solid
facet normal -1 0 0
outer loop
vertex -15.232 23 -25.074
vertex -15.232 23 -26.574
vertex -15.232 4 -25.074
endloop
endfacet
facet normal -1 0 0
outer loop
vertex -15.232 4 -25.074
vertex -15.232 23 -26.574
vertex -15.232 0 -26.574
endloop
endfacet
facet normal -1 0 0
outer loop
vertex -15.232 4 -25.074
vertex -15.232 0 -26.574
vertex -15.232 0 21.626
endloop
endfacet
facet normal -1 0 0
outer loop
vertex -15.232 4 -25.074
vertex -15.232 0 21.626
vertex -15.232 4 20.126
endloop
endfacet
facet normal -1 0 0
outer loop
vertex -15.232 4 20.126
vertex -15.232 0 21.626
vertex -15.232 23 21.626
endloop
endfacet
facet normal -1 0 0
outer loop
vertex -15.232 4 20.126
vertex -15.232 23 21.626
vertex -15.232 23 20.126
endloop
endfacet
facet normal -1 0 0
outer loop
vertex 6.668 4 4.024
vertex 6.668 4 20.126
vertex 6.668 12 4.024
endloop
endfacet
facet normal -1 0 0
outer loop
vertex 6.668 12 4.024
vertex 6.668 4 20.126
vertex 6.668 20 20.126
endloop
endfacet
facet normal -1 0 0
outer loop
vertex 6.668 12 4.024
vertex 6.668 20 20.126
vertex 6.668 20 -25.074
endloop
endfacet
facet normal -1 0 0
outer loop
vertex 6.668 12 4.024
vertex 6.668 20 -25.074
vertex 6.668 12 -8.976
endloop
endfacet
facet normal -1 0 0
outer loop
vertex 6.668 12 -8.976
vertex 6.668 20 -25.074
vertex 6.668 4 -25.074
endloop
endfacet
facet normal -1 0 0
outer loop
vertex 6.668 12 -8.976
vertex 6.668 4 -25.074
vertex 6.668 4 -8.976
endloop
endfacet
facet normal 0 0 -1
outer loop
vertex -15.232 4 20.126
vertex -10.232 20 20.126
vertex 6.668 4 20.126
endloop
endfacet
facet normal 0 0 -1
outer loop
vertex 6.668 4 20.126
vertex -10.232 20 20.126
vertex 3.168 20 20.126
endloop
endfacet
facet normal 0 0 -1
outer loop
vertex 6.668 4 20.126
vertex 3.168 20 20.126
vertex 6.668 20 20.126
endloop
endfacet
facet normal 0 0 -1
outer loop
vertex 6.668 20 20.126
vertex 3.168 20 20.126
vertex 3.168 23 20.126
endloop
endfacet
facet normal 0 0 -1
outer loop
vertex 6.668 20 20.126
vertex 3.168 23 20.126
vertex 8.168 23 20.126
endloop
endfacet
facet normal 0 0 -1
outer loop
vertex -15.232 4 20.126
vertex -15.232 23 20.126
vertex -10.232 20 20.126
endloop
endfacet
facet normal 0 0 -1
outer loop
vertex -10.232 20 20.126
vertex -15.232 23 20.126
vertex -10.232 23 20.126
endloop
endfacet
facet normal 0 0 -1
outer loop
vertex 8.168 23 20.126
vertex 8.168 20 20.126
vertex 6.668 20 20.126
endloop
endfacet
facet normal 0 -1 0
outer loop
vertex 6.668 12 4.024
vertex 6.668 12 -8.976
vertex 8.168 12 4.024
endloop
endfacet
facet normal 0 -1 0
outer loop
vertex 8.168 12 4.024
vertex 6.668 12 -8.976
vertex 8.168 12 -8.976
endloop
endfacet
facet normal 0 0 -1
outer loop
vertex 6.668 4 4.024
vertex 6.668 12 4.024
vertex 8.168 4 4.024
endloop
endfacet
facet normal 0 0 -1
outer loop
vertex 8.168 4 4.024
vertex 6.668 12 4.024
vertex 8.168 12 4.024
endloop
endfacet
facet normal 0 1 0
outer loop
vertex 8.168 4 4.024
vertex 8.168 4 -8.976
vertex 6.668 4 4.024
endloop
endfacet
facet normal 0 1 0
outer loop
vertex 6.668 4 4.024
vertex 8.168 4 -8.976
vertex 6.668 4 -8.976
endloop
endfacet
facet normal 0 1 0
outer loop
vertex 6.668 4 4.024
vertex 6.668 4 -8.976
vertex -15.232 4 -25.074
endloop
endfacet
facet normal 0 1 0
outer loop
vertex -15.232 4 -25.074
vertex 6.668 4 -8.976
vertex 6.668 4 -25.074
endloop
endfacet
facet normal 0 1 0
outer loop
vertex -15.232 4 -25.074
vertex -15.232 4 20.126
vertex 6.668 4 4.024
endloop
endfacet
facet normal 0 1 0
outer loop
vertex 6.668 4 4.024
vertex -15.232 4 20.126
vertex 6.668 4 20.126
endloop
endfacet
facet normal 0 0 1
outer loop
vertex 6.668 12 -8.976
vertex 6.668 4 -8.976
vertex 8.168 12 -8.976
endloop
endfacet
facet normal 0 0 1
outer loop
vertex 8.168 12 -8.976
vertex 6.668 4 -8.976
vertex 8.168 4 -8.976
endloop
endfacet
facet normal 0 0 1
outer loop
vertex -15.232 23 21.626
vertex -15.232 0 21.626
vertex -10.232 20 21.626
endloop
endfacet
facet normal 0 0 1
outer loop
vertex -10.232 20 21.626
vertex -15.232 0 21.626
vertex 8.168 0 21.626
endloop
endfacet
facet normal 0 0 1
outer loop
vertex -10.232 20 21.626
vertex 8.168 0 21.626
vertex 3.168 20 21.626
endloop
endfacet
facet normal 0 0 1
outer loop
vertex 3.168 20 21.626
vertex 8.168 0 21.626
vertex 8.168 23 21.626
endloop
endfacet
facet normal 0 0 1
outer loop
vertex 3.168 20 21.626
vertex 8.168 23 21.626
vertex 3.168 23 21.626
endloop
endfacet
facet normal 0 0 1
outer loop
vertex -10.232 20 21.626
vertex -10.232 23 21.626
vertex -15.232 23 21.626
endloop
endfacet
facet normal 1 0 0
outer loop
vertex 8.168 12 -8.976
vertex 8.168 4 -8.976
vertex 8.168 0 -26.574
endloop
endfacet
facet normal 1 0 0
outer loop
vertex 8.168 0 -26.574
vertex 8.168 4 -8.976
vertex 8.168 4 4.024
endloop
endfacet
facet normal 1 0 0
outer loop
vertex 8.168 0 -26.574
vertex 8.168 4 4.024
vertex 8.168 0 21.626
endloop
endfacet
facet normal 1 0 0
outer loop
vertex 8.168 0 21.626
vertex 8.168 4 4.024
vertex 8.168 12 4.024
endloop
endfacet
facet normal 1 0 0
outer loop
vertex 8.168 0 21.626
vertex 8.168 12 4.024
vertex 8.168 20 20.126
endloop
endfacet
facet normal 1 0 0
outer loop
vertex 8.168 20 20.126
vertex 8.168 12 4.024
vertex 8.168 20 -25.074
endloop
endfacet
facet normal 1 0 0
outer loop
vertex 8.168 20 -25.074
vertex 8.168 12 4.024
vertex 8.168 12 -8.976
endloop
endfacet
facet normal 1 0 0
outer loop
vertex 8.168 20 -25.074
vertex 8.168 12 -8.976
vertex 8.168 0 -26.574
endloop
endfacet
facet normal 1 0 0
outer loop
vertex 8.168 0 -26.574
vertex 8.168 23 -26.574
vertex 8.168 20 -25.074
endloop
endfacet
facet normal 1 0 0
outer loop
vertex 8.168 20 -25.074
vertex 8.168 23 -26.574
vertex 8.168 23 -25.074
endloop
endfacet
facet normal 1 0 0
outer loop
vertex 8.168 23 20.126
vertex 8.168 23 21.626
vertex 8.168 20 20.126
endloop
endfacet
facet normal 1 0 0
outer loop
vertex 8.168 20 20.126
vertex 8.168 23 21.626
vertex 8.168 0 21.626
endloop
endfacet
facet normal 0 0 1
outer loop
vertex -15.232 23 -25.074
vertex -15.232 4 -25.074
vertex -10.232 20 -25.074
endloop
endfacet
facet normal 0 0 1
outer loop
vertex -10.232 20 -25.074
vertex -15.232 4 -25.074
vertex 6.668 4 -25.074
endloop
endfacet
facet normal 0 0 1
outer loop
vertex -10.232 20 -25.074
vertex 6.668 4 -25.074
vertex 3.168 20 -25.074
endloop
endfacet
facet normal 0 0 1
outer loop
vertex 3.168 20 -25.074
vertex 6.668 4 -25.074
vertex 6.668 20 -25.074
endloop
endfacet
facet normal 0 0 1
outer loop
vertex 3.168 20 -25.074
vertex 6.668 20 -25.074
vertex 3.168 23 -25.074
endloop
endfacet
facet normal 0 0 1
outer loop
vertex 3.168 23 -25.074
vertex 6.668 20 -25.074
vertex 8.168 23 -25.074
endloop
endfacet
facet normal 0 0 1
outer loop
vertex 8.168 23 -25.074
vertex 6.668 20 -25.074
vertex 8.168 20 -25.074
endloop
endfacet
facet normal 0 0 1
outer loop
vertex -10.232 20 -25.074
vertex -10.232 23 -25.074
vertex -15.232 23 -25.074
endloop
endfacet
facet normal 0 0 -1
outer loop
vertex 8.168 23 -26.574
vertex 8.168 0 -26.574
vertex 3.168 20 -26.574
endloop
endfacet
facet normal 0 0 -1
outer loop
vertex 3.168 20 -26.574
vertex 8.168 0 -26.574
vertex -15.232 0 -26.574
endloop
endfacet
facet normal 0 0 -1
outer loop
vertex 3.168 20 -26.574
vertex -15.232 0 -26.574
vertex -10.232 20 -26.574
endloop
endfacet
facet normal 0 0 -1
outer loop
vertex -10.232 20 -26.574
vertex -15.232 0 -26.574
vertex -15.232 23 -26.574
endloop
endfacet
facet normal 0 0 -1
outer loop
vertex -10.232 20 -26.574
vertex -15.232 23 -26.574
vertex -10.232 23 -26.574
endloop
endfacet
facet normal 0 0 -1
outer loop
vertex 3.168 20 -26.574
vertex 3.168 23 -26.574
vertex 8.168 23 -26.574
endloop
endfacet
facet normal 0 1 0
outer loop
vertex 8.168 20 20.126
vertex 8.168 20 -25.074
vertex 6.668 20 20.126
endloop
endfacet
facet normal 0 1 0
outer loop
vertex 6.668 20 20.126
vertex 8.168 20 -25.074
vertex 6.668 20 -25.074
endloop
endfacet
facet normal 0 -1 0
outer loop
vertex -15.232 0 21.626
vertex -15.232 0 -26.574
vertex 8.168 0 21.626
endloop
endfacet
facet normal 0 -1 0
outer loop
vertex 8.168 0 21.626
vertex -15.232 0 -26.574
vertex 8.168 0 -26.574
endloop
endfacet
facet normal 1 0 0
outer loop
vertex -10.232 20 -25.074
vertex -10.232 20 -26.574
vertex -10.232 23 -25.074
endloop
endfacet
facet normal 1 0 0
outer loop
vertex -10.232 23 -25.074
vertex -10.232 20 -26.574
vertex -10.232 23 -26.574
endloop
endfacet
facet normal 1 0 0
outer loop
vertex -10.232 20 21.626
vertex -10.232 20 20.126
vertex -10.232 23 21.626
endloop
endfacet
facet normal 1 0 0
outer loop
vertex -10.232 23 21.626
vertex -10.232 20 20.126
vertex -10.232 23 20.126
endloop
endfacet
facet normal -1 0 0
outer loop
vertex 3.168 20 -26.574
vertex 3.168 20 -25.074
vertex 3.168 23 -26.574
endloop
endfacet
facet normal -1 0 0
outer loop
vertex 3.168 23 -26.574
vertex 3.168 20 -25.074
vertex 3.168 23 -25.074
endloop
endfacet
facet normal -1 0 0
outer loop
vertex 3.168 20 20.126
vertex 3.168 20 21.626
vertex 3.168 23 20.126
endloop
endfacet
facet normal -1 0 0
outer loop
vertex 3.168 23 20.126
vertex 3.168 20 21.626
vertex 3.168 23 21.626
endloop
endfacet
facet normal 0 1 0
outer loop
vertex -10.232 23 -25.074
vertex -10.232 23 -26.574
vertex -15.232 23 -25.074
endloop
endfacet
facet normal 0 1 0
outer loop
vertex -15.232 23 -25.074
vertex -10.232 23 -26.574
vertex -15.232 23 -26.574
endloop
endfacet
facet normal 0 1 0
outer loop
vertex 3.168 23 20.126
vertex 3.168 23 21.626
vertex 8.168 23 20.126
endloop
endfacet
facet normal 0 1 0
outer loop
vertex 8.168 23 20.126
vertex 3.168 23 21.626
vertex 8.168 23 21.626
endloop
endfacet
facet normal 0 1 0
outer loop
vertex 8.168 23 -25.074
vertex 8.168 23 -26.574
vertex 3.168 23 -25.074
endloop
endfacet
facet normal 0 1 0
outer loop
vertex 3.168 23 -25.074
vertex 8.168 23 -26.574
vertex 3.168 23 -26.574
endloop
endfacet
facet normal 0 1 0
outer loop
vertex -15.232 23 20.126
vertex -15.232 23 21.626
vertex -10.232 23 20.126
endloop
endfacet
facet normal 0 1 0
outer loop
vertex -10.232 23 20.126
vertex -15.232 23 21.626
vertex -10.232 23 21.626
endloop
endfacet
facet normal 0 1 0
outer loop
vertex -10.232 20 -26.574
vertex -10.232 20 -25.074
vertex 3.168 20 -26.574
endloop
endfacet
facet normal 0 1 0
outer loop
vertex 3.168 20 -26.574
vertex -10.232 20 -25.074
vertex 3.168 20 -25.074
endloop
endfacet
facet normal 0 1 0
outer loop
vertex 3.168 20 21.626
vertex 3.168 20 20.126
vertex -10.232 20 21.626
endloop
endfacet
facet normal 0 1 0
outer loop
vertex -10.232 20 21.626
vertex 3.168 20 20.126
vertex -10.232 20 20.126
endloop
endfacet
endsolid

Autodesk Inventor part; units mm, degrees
ref_plane "YZ Plane" through (0, 0, 0) normal (1, 0, 0) x (0, 1, 0)
ref_plane "XZ Plane" through (0, 0, 0) normal (0, 1, 0) x (-1, 0, 0)
ref_plane "XY Plane" through (0, 0, 0) normal (0, 0, 1) x (1, 0, 0)
sketch "Sketch1" plane through (0, 0, 0) normal (0, 1, 0) x (-1, 0, 0)
  line L0 (-6.6677, 20.126) -> (13.7323, 20.126)
  line L1 (13.7323, 20.126) -> (13.7323, -25.074)
  line L2 (13.7323, -25.074) -> (-6.6677, -25.074)
  line L3 (-6.6677, -25.074) -> (-6.6677, 20.126)
  line L4 (15.2323, -26.574) -> (15.2323, 21.626)
  line L5 (15.2323, 21.626) -> (-8.1677, 21.626)
  line L6 (-8.1677, 21.626) -> (-8.1677, -26.574)
  line L7 (-8.1677, -26.574) -> (15.2323, -26.574)
  point P0 (0, 0)
  dimension "d0" = 45.2
  dimension "d1" = 20.4
  dimension "d2" = 1.5
extrude "Extrusion1" add sketch "Sketch1" along normal blind 20
sketch "Sketch2" plane through (8.1677, 0, 21.626) normal (1, 0, 0) x (0, 0, -1)
  line L0 (19.1022, 10.5) -> (29.1022, 10.5)
  line L1 (29.1022, 10.5) -> (29.1022, 5.5)
  line L2 (29.1022, 5.5) -> (19.1022, 5.5)
  line L3 (19.1022, 5.5) -> (19.1022, 10.5)
  line L4 (30.6022, 12) -> (17.6022, 12)
  line L5 (17.6022, 12) -> (17.6022, 4)
  line L6 (17.6022, 4) -> (30.6022, 4)
  line L7 (30.6022, 4) -> (30.6022, 12)
  line L8 (0, 0) -> (0, 20) projected
  line L9 (48.2, 0) -> (48.2, 20) projected
  line L10 (0, 20) -> (48.2, 20) projected
  point P0 (21.626, 0)
  dimension "d5" = 10
  dimension "d6" = 5
  dimension "d7" = 1.5
  dimension "d8" = 17.6022
  dimension "d9" = 17.5978
  dimension "d10" = 8
extrude "Extrusion2" cut sketch "Sketch2" against normal blind 6 contours L0 L1 L2 L3 | L7 L6 L5 L4
extrude "Extrusion3" add sketch "Sketch1" along normal blind 4 contours L0 L1 L2 L3
sketch "Sketch3" plane through (0, 20, 0) normal (0, 1, 0) x (1, 0, 0)
  line L0 (-13.7323, -20.126) -> (-13.7323, 25.074) projected
  line L1 (-15.2323, 26.574) -> (-15.2323, -21.626) projected
  line L2 (-13.7323, -20.126) -> (-15.2323, -20.126)
  line L3 (-15.2323, -20.126) -> (-15.2323, 25.074)
  line L4 (-15.2323, 25.074) -> (-13.7323, 25.074)
  line L5 (-13.7323, 25.074) -> (-13.7323, -20.126)
  point P0 (0, 0)
  dimension "d17" = 0
extrude "Extrusion4" cut sketch "Sketch3" against normal blind 16
sketch "Sketch4" plane through (0, 20, 0) normal (0, 1, 0) x (1, 0, 0)
  line L0 (-15.2323, -20.126) -> (-15.2323, -21.626) projected
  line L1 (-15.2323, -21.626) -> (8.1677, -21.626) projected
  line L2 (-15.2323, -20.126) -> (-10.2323, -20.126)
  line L3 (-10.2323, -20.126) -> (-10.2323, -21.626)
  line L4 (-10.2323, -21.626) -> (-15.2323, -21.626)
  line L5 (-15.2323, -21.626) -> (-15.2323, -20.126)
  line L6 (6.6677, -20.126) -> (-15.2323, -20.126) projected
  line L7 (8.1677, -21.626) -> (3.1677, -21.626)
  line L8 (3.1677, -21.626) -> (3.1677, -20.126)
  line L9 (3.1677, -20.126) -> (8.1677, -20.126)
  line L10 (8.1677, -20.126) -> (8.1677, -21.626)
  line L11 (8.1677, 26.574) -> (-15.2323, 26.574) projected
  line L12 (-15.2323, 25.074) -> (6.6677, 25.074) projected
  line L13 (-15.2323, 26.574) -> (-10.2323, 26.574)
  line L14 (-10.2323, 26.574) -> (-10.2323, 25.074)
  line L15 (-10.2323, 25.074) -> (-15.2323, 25.074)
  line L16 (-15.2323, 25.074) -> (-15.2323, 26.574)
  line L17 (8.1677, -21.626) -> (8.1677, 26.574) projected
  line L18 (8.1677, 26.574) -> (3.1677, 26.574)
  line L19 (3.1677, 26.574) -> (3.1677, 25.074)
  line L20 (3.1677, 25.074) -> (8.1677, 25.074)
  line L21 (8.1677, 25.074) -> (8.1677, 26.574)
  point P0 (0, 0)
  dimension "d18" = 5
  dimension "d19" = 5
  dimension "d20" = 5
  dimension "d21" = 5
extrude "Extrusion5" add sketch "Sketch4" along normal blind 3 contours L2 L3 L1 L0 | L20 L12 L19 L11 L17 | L6 L9 L10 L1 L8 | L14 L12 L16 L11
properties part number "US_Casis"
